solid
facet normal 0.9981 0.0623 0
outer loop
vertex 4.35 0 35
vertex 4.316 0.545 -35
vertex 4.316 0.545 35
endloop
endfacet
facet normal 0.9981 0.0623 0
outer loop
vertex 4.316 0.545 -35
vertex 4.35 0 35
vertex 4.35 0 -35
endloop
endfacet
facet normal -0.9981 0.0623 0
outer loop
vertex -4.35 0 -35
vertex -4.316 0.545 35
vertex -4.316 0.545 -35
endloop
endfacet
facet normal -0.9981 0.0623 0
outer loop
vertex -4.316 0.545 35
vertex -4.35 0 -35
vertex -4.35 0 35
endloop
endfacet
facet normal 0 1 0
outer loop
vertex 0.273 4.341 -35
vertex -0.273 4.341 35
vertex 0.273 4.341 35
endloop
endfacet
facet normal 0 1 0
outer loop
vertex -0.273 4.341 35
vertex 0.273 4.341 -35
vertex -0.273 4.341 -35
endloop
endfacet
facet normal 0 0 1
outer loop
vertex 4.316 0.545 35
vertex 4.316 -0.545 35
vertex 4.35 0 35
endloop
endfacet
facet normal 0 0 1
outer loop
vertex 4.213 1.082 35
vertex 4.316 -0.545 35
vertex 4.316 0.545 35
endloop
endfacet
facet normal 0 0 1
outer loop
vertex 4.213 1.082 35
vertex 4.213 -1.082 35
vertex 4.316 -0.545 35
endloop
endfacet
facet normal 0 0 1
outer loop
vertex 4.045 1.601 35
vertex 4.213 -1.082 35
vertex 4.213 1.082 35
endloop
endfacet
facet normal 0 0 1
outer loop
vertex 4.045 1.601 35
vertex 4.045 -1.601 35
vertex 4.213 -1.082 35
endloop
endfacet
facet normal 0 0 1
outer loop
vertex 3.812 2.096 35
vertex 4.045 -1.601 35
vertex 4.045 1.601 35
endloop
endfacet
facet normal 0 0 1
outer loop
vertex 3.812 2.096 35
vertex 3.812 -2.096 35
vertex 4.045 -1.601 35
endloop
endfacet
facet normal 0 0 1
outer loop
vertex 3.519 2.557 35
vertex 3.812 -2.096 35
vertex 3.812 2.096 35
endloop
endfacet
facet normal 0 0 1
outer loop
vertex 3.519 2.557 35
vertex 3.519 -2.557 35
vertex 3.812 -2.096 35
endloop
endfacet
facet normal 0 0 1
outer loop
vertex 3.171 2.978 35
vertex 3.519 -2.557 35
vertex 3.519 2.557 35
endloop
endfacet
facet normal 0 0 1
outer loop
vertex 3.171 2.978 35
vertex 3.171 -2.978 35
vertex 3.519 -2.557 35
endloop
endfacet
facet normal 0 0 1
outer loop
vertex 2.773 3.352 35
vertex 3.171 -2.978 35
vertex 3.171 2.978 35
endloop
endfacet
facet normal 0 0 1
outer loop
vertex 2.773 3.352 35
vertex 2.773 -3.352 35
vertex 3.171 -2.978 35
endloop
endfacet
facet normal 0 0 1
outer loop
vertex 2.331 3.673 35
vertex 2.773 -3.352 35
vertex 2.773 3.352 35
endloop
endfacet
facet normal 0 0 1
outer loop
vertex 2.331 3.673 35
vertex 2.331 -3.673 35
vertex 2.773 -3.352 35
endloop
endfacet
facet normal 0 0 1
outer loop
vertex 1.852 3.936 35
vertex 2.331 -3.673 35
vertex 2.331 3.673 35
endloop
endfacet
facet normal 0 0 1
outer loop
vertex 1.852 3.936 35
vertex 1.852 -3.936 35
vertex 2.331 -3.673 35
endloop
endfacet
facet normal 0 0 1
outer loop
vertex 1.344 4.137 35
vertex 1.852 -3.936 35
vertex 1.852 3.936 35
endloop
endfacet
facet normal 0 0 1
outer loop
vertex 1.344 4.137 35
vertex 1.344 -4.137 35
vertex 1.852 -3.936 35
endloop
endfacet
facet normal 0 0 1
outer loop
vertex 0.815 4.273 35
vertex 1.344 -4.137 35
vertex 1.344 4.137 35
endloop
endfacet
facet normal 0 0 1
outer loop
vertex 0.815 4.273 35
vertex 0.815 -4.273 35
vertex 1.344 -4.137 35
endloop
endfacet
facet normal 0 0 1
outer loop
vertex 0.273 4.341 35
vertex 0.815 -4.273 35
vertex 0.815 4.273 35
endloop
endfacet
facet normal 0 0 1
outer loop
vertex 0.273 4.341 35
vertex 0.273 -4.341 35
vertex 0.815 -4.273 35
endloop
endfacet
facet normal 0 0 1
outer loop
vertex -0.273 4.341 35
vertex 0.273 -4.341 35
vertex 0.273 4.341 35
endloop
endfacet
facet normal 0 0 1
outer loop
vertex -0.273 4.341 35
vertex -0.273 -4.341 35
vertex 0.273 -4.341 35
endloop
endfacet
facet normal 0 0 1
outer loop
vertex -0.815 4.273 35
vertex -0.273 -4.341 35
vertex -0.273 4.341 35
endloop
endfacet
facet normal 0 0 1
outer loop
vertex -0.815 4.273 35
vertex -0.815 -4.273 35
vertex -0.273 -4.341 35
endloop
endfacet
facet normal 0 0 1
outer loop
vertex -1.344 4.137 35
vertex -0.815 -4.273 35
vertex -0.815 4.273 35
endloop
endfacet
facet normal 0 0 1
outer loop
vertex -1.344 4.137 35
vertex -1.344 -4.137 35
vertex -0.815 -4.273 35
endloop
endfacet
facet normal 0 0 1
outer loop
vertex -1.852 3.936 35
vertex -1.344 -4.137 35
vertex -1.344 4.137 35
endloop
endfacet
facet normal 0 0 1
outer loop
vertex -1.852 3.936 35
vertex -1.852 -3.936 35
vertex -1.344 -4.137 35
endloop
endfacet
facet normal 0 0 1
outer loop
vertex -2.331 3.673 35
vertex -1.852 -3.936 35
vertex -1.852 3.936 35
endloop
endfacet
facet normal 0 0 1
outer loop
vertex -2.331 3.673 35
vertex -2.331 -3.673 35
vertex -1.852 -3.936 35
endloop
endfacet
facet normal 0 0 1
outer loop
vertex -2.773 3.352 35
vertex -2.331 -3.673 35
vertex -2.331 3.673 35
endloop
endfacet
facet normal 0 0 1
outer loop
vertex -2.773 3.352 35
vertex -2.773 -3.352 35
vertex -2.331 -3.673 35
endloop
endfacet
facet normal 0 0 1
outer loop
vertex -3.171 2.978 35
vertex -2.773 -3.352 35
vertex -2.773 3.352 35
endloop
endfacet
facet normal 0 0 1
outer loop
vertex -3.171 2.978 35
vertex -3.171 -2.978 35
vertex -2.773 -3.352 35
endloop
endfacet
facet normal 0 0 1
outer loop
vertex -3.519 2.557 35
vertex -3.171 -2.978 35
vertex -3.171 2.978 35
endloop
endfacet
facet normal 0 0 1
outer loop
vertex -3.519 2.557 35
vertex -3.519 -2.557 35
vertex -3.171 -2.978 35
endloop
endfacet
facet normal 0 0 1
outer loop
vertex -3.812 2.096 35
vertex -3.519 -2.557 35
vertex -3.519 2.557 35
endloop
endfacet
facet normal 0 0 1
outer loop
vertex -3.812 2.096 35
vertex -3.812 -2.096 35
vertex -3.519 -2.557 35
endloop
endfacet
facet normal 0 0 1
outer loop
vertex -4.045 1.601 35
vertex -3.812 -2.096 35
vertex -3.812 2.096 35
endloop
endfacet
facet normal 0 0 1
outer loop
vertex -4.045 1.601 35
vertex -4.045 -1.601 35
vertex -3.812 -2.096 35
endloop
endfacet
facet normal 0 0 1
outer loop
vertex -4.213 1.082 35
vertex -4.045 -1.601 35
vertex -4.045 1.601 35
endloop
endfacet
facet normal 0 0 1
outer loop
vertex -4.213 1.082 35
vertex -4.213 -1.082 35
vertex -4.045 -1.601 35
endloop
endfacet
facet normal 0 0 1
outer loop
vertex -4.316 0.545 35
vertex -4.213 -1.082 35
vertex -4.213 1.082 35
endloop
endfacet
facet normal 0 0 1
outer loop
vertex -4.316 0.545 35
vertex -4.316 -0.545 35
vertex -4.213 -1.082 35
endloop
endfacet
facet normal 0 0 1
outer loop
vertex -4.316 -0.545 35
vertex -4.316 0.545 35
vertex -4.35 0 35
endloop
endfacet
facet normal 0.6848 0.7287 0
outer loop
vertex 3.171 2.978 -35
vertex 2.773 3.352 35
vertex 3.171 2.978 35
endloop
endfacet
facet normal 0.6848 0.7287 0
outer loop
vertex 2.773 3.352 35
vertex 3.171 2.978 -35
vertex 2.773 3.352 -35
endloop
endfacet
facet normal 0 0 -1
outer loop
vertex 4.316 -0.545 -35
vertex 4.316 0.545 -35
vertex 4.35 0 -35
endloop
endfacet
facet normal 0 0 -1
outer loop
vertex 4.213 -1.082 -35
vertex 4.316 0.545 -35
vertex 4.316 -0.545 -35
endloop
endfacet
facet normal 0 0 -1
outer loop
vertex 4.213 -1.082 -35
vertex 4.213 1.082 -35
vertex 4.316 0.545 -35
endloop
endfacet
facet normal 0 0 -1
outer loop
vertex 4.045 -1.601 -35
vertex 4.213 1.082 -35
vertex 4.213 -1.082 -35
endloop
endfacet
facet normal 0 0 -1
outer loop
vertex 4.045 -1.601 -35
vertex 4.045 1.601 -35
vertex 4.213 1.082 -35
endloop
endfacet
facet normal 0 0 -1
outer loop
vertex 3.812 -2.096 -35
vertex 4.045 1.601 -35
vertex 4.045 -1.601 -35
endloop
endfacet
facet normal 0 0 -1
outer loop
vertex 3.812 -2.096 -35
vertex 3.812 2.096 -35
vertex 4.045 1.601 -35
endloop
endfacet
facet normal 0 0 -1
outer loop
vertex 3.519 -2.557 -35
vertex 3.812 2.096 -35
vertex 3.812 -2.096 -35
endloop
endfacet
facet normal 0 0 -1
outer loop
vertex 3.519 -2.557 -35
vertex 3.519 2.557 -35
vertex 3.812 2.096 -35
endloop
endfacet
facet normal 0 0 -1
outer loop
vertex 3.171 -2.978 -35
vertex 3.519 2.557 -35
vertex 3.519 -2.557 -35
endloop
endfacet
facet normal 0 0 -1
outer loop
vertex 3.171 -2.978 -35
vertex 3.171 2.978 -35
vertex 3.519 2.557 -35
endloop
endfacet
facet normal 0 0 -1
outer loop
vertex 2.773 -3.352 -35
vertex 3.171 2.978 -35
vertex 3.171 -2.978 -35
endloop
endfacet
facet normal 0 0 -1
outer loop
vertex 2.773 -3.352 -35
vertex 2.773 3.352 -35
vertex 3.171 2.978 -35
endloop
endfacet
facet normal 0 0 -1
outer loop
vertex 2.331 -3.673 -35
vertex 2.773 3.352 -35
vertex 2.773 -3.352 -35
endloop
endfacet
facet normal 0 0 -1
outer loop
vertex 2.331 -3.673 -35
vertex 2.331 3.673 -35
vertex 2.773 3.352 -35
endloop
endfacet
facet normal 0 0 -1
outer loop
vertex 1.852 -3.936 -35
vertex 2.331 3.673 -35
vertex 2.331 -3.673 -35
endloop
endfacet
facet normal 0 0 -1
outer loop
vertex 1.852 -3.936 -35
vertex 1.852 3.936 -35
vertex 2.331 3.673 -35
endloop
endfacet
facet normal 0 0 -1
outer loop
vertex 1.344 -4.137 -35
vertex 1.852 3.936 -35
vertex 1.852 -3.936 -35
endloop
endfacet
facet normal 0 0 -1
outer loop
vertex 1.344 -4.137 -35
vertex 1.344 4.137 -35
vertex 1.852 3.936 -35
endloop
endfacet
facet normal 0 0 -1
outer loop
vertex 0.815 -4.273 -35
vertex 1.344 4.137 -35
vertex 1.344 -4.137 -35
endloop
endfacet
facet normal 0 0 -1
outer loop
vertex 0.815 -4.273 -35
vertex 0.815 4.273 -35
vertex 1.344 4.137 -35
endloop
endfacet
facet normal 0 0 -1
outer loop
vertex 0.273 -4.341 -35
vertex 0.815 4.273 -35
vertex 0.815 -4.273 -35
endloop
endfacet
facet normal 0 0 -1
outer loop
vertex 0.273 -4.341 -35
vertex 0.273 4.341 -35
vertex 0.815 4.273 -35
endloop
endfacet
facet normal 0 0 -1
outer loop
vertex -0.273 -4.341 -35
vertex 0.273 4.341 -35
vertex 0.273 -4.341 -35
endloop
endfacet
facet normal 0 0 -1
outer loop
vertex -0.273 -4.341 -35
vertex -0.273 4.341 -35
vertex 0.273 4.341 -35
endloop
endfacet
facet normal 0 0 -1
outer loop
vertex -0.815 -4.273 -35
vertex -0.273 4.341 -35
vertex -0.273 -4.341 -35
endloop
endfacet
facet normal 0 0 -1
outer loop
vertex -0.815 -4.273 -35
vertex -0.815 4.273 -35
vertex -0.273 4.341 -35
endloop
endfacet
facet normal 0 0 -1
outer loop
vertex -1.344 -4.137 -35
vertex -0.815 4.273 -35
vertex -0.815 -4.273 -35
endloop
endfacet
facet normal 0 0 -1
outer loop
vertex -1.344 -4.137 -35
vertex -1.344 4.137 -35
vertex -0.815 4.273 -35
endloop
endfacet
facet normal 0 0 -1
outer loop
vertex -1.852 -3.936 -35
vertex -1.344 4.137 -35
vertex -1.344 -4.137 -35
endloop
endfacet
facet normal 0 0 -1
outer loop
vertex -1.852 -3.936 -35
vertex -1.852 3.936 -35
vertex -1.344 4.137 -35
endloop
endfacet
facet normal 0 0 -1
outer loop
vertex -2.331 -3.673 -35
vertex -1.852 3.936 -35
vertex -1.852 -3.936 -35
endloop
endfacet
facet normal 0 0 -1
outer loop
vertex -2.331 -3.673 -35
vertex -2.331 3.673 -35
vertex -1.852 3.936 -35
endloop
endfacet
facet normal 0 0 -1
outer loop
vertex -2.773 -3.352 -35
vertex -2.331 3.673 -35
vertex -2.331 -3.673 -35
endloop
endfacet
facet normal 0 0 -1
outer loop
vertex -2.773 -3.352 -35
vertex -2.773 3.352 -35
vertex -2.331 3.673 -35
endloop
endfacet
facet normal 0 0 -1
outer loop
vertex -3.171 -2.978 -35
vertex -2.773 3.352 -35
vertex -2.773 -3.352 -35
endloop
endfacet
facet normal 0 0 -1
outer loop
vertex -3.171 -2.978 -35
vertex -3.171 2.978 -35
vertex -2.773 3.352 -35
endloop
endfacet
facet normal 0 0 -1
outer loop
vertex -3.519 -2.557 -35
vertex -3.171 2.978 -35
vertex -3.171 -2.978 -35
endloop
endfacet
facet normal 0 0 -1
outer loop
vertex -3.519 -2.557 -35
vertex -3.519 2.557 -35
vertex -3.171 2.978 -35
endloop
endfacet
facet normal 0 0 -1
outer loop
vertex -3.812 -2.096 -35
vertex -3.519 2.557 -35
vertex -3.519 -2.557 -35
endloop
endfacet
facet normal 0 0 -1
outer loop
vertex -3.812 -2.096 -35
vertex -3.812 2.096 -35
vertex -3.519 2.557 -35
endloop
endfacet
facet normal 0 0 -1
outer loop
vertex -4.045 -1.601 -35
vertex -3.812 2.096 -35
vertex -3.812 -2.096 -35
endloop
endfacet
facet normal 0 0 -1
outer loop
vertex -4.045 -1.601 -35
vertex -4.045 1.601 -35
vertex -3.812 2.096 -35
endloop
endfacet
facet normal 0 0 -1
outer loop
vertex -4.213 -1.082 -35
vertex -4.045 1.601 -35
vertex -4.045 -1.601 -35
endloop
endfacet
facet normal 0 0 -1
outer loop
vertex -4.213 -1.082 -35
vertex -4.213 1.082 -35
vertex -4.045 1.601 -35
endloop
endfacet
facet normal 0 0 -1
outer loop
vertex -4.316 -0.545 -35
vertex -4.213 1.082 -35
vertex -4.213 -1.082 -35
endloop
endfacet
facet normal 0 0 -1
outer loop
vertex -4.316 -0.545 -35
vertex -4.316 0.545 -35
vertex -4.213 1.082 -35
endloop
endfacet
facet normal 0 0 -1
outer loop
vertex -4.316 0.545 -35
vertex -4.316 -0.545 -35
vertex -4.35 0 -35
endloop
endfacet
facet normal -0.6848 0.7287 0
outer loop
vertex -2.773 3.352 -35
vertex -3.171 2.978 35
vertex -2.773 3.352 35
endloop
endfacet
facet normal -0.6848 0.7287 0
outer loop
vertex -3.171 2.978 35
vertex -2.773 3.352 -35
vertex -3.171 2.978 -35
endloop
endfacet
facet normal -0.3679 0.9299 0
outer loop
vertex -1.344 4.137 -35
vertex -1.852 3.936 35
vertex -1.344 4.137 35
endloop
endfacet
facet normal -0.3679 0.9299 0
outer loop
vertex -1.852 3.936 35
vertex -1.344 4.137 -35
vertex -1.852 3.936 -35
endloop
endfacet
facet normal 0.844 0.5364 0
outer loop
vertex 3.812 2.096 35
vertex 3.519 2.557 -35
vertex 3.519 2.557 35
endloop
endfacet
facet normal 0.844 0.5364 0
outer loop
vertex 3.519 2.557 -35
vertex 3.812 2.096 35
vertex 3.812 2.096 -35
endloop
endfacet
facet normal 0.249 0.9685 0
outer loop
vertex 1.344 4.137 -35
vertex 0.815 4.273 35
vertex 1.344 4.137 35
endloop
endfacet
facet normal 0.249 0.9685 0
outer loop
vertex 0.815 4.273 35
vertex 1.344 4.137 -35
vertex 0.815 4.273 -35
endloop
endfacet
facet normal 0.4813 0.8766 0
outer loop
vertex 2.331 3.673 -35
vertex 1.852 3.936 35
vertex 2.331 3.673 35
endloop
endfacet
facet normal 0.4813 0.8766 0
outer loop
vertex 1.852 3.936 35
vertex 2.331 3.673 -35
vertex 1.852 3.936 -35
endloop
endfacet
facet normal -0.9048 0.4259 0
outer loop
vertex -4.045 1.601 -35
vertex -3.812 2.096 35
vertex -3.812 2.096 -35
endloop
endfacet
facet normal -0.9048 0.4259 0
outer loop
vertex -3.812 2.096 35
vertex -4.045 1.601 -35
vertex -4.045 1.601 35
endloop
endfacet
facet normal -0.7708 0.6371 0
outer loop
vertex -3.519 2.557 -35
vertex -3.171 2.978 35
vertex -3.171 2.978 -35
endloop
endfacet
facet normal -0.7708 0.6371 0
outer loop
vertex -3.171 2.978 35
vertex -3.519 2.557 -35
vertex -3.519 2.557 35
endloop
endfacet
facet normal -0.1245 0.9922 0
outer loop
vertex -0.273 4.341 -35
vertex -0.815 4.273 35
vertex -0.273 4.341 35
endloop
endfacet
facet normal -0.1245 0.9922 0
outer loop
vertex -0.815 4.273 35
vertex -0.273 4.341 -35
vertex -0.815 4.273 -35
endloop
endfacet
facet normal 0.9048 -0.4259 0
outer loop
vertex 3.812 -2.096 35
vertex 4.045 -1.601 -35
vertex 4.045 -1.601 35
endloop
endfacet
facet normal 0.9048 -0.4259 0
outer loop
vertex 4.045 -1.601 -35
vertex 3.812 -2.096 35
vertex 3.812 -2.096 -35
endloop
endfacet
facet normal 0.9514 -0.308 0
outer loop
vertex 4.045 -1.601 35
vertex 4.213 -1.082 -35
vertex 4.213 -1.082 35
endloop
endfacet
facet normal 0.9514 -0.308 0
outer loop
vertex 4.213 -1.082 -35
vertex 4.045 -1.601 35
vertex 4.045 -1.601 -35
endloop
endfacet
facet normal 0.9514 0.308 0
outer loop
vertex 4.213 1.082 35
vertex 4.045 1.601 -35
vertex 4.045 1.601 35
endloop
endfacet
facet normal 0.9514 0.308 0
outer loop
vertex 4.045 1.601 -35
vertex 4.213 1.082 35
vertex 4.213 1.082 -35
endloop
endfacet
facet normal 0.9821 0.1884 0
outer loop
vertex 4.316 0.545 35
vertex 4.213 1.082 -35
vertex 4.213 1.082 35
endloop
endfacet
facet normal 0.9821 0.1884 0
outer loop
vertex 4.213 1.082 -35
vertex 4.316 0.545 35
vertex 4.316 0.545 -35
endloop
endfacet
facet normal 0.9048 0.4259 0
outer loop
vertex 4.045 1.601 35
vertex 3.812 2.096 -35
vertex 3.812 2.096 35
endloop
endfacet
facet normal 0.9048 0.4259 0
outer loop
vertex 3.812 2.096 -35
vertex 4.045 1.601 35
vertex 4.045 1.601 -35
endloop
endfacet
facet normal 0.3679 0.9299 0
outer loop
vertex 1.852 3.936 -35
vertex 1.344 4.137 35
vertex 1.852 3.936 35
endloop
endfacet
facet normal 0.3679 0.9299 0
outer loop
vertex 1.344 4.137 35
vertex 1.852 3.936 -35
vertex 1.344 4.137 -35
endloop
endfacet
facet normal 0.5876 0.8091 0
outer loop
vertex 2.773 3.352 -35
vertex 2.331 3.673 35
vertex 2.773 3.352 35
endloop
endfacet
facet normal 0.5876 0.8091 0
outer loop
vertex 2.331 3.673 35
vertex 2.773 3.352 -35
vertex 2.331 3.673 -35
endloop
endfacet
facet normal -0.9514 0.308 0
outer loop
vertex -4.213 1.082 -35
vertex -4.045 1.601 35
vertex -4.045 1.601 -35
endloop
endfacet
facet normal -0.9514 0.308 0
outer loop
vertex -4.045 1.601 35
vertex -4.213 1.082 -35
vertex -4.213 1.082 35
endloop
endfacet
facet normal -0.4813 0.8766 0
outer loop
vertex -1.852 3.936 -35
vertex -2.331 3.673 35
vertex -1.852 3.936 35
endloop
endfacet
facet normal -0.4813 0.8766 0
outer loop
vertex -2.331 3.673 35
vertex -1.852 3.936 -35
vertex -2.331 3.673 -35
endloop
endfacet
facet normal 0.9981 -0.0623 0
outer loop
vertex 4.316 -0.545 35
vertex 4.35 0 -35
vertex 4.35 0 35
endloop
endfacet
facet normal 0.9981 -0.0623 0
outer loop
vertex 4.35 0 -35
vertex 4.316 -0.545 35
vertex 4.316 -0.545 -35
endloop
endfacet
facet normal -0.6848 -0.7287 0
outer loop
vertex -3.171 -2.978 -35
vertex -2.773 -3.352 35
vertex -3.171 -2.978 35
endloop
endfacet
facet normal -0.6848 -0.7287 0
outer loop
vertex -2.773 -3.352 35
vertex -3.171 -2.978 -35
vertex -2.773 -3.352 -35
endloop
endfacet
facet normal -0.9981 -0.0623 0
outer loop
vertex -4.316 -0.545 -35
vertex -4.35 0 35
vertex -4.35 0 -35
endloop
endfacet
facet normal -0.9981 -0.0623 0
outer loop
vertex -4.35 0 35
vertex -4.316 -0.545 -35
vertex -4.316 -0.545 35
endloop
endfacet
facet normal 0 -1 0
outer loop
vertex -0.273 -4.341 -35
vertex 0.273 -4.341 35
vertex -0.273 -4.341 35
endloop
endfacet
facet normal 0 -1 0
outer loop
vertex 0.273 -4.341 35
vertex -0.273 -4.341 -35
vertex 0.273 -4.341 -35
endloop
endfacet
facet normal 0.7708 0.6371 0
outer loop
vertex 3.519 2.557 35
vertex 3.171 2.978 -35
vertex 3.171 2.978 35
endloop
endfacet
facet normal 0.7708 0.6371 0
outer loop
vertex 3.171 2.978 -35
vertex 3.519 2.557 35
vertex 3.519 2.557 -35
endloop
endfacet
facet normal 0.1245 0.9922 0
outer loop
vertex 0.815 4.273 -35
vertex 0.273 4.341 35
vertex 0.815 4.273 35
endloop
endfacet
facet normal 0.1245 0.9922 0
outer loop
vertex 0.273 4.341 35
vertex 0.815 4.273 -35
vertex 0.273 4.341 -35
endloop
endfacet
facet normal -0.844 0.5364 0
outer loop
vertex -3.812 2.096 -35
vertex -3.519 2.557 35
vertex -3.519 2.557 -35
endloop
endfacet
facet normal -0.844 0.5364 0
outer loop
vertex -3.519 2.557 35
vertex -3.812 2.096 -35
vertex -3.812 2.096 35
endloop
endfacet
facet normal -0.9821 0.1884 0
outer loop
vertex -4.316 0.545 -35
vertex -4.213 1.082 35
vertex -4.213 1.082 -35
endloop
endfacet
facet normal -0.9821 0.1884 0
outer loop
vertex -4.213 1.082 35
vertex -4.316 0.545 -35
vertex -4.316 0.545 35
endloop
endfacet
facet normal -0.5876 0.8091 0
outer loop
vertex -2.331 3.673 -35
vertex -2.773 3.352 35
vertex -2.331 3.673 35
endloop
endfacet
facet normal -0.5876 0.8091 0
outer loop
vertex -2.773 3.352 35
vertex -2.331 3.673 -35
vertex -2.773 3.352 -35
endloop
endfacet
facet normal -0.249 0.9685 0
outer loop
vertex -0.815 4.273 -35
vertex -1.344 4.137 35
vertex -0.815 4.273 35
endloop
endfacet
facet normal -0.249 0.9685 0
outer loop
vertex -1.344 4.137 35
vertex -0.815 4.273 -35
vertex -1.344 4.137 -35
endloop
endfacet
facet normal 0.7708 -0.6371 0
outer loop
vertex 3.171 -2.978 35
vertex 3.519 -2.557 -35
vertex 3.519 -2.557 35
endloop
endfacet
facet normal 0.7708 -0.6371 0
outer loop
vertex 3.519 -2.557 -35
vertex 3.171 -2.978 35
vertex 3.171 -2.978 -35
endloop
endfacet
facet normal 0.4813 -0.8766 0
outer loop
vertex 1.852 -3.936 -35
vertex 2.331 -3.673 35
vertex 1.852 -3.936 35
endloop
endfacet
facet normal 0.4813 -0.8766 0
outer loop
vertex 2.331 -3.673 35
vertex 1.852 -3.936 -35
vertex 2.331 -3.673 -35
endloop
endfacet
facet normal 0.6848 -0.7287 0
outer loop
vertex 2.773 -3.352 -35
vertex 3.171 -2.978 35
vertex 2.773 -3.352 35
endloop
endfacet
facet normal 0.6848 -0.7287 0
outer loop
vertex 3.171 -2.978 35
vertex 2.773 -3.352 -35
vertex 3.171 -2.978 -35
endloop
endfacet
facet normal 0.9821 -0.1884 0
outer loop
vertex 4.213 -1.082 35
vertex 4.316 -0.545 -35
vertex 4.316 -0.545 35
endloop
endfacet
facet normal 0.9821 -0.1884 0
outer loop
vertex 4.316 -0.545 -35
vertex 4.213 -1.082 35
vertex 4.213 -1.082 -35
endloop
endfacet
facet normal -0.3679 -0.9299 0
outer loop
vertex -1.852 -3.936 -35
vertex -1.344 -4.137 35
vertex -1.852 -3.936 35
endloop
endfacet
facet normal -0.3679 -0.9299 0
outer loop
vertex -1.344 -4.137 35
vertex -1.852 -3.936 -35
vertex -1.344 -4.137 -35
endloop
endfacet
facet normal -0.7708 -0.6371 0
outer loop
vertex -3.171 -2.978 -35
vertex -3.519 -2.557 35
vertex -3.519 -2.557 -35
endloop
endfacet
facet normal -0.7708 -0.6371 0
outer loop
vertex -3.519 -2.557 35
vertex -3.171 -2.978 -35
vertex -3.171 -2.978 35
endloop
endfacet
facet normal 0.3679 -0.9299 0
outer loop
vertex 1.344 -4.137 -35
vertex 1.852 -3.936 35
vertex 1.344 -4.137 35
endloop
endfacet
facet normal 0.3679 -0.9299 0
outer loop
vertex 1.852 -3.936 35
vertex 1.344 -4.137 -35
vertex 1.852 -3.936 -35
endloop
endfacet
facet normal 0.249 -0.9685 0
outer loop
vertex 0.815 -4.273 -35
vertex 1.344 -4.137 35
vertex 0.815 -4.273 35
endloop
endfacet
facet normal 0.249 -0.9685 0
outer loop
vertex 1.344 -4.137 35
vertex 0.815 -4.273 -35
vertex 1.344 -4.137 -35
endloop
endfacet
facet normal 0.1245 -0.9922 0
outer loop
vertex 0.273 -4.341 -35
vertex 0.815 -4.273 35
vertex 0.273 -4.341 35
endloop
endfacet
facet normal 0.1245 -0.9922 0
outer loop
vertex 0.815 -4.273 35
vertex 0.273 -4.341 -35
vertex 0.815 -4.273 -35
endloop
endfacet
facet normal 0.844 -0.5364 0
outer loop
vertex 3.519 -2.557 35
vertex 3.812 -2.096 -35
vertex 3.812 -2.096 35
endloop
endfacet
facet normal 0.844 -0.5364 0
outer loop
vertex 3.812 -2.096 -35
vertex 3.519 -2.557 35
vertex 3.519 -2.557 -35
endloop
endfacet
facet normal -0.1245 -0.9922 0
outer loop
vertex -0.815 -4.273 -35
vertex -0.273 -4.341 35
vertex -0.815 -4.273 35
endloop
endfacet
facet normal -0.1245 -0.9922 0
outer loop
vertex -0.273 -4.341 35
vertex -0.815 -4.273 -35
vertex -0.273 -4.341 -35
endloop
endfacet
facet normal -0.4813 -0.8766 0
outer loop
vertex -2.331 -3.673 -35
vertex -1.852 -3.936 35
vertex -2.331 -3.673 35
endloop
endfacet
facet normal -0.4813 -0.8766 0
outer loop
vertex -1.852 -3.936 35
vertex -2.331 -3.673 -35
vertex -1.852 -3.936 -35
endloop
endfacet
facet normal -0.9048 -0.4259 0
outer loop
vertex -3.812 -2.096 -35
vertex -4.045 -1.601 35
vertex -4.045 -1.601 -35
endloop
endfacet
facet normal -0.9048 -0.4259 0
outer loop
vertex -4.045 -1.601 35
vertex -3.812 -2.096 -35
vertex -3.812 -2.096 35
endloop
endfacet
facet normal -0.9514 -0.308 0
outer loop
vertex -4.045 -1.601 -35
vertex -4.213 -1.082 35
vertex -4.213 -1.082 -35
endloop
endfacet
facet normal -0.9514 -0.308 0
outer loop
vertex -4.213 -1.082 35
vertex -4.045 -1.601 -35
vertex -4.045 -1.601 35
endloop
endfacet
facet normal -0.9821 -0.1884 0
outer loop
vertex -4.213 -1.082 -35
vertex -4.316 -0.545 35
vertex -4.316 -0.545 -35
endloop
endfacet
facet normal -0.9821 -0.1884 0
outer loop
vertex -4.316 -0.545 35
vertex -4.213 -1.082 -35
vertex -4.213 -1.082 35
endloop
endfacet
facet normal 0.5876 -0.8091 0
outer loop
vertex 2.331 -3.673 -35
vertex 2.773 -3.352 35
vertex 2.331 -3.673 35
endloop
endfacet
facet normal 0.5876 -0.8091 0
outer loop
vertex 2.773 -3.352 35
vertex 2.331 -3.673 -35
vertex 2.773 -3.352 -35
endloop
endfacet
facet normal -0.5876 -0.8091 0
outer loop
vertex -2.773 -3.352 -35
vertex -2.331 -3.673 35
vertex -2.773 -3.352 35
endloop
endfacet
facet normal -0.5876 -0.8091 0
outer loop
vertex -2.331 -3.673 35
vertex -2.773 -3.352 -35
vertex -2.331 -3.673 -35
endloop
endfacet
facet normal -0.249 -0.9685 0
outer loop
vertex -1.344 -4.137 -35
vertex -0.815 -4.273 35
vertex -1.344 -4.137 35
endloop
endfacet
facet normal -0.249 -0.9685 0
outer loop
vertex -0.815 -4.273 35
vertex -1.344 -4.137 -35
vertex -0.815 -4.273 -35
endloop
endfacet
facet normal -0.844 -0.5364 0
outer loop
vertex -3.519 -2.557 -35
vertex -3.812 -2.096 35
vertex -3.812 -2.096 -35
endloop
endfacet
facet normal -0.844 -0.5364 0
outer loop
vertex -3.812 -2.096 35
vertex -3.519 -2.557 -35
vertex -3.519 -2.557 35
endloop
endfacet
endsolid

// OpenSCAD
$fn = 50;


difference() {
	union() {
		translate(v = [0, 0, -35.0000000000]) {
			cylinder(h = 70, r = 4.3500000000);
		}
	}
	union() {
		translate(v = [0, 0, -100.0000000000]) {
			cylinder(h = 200, r = 0);
		}
	}
}
